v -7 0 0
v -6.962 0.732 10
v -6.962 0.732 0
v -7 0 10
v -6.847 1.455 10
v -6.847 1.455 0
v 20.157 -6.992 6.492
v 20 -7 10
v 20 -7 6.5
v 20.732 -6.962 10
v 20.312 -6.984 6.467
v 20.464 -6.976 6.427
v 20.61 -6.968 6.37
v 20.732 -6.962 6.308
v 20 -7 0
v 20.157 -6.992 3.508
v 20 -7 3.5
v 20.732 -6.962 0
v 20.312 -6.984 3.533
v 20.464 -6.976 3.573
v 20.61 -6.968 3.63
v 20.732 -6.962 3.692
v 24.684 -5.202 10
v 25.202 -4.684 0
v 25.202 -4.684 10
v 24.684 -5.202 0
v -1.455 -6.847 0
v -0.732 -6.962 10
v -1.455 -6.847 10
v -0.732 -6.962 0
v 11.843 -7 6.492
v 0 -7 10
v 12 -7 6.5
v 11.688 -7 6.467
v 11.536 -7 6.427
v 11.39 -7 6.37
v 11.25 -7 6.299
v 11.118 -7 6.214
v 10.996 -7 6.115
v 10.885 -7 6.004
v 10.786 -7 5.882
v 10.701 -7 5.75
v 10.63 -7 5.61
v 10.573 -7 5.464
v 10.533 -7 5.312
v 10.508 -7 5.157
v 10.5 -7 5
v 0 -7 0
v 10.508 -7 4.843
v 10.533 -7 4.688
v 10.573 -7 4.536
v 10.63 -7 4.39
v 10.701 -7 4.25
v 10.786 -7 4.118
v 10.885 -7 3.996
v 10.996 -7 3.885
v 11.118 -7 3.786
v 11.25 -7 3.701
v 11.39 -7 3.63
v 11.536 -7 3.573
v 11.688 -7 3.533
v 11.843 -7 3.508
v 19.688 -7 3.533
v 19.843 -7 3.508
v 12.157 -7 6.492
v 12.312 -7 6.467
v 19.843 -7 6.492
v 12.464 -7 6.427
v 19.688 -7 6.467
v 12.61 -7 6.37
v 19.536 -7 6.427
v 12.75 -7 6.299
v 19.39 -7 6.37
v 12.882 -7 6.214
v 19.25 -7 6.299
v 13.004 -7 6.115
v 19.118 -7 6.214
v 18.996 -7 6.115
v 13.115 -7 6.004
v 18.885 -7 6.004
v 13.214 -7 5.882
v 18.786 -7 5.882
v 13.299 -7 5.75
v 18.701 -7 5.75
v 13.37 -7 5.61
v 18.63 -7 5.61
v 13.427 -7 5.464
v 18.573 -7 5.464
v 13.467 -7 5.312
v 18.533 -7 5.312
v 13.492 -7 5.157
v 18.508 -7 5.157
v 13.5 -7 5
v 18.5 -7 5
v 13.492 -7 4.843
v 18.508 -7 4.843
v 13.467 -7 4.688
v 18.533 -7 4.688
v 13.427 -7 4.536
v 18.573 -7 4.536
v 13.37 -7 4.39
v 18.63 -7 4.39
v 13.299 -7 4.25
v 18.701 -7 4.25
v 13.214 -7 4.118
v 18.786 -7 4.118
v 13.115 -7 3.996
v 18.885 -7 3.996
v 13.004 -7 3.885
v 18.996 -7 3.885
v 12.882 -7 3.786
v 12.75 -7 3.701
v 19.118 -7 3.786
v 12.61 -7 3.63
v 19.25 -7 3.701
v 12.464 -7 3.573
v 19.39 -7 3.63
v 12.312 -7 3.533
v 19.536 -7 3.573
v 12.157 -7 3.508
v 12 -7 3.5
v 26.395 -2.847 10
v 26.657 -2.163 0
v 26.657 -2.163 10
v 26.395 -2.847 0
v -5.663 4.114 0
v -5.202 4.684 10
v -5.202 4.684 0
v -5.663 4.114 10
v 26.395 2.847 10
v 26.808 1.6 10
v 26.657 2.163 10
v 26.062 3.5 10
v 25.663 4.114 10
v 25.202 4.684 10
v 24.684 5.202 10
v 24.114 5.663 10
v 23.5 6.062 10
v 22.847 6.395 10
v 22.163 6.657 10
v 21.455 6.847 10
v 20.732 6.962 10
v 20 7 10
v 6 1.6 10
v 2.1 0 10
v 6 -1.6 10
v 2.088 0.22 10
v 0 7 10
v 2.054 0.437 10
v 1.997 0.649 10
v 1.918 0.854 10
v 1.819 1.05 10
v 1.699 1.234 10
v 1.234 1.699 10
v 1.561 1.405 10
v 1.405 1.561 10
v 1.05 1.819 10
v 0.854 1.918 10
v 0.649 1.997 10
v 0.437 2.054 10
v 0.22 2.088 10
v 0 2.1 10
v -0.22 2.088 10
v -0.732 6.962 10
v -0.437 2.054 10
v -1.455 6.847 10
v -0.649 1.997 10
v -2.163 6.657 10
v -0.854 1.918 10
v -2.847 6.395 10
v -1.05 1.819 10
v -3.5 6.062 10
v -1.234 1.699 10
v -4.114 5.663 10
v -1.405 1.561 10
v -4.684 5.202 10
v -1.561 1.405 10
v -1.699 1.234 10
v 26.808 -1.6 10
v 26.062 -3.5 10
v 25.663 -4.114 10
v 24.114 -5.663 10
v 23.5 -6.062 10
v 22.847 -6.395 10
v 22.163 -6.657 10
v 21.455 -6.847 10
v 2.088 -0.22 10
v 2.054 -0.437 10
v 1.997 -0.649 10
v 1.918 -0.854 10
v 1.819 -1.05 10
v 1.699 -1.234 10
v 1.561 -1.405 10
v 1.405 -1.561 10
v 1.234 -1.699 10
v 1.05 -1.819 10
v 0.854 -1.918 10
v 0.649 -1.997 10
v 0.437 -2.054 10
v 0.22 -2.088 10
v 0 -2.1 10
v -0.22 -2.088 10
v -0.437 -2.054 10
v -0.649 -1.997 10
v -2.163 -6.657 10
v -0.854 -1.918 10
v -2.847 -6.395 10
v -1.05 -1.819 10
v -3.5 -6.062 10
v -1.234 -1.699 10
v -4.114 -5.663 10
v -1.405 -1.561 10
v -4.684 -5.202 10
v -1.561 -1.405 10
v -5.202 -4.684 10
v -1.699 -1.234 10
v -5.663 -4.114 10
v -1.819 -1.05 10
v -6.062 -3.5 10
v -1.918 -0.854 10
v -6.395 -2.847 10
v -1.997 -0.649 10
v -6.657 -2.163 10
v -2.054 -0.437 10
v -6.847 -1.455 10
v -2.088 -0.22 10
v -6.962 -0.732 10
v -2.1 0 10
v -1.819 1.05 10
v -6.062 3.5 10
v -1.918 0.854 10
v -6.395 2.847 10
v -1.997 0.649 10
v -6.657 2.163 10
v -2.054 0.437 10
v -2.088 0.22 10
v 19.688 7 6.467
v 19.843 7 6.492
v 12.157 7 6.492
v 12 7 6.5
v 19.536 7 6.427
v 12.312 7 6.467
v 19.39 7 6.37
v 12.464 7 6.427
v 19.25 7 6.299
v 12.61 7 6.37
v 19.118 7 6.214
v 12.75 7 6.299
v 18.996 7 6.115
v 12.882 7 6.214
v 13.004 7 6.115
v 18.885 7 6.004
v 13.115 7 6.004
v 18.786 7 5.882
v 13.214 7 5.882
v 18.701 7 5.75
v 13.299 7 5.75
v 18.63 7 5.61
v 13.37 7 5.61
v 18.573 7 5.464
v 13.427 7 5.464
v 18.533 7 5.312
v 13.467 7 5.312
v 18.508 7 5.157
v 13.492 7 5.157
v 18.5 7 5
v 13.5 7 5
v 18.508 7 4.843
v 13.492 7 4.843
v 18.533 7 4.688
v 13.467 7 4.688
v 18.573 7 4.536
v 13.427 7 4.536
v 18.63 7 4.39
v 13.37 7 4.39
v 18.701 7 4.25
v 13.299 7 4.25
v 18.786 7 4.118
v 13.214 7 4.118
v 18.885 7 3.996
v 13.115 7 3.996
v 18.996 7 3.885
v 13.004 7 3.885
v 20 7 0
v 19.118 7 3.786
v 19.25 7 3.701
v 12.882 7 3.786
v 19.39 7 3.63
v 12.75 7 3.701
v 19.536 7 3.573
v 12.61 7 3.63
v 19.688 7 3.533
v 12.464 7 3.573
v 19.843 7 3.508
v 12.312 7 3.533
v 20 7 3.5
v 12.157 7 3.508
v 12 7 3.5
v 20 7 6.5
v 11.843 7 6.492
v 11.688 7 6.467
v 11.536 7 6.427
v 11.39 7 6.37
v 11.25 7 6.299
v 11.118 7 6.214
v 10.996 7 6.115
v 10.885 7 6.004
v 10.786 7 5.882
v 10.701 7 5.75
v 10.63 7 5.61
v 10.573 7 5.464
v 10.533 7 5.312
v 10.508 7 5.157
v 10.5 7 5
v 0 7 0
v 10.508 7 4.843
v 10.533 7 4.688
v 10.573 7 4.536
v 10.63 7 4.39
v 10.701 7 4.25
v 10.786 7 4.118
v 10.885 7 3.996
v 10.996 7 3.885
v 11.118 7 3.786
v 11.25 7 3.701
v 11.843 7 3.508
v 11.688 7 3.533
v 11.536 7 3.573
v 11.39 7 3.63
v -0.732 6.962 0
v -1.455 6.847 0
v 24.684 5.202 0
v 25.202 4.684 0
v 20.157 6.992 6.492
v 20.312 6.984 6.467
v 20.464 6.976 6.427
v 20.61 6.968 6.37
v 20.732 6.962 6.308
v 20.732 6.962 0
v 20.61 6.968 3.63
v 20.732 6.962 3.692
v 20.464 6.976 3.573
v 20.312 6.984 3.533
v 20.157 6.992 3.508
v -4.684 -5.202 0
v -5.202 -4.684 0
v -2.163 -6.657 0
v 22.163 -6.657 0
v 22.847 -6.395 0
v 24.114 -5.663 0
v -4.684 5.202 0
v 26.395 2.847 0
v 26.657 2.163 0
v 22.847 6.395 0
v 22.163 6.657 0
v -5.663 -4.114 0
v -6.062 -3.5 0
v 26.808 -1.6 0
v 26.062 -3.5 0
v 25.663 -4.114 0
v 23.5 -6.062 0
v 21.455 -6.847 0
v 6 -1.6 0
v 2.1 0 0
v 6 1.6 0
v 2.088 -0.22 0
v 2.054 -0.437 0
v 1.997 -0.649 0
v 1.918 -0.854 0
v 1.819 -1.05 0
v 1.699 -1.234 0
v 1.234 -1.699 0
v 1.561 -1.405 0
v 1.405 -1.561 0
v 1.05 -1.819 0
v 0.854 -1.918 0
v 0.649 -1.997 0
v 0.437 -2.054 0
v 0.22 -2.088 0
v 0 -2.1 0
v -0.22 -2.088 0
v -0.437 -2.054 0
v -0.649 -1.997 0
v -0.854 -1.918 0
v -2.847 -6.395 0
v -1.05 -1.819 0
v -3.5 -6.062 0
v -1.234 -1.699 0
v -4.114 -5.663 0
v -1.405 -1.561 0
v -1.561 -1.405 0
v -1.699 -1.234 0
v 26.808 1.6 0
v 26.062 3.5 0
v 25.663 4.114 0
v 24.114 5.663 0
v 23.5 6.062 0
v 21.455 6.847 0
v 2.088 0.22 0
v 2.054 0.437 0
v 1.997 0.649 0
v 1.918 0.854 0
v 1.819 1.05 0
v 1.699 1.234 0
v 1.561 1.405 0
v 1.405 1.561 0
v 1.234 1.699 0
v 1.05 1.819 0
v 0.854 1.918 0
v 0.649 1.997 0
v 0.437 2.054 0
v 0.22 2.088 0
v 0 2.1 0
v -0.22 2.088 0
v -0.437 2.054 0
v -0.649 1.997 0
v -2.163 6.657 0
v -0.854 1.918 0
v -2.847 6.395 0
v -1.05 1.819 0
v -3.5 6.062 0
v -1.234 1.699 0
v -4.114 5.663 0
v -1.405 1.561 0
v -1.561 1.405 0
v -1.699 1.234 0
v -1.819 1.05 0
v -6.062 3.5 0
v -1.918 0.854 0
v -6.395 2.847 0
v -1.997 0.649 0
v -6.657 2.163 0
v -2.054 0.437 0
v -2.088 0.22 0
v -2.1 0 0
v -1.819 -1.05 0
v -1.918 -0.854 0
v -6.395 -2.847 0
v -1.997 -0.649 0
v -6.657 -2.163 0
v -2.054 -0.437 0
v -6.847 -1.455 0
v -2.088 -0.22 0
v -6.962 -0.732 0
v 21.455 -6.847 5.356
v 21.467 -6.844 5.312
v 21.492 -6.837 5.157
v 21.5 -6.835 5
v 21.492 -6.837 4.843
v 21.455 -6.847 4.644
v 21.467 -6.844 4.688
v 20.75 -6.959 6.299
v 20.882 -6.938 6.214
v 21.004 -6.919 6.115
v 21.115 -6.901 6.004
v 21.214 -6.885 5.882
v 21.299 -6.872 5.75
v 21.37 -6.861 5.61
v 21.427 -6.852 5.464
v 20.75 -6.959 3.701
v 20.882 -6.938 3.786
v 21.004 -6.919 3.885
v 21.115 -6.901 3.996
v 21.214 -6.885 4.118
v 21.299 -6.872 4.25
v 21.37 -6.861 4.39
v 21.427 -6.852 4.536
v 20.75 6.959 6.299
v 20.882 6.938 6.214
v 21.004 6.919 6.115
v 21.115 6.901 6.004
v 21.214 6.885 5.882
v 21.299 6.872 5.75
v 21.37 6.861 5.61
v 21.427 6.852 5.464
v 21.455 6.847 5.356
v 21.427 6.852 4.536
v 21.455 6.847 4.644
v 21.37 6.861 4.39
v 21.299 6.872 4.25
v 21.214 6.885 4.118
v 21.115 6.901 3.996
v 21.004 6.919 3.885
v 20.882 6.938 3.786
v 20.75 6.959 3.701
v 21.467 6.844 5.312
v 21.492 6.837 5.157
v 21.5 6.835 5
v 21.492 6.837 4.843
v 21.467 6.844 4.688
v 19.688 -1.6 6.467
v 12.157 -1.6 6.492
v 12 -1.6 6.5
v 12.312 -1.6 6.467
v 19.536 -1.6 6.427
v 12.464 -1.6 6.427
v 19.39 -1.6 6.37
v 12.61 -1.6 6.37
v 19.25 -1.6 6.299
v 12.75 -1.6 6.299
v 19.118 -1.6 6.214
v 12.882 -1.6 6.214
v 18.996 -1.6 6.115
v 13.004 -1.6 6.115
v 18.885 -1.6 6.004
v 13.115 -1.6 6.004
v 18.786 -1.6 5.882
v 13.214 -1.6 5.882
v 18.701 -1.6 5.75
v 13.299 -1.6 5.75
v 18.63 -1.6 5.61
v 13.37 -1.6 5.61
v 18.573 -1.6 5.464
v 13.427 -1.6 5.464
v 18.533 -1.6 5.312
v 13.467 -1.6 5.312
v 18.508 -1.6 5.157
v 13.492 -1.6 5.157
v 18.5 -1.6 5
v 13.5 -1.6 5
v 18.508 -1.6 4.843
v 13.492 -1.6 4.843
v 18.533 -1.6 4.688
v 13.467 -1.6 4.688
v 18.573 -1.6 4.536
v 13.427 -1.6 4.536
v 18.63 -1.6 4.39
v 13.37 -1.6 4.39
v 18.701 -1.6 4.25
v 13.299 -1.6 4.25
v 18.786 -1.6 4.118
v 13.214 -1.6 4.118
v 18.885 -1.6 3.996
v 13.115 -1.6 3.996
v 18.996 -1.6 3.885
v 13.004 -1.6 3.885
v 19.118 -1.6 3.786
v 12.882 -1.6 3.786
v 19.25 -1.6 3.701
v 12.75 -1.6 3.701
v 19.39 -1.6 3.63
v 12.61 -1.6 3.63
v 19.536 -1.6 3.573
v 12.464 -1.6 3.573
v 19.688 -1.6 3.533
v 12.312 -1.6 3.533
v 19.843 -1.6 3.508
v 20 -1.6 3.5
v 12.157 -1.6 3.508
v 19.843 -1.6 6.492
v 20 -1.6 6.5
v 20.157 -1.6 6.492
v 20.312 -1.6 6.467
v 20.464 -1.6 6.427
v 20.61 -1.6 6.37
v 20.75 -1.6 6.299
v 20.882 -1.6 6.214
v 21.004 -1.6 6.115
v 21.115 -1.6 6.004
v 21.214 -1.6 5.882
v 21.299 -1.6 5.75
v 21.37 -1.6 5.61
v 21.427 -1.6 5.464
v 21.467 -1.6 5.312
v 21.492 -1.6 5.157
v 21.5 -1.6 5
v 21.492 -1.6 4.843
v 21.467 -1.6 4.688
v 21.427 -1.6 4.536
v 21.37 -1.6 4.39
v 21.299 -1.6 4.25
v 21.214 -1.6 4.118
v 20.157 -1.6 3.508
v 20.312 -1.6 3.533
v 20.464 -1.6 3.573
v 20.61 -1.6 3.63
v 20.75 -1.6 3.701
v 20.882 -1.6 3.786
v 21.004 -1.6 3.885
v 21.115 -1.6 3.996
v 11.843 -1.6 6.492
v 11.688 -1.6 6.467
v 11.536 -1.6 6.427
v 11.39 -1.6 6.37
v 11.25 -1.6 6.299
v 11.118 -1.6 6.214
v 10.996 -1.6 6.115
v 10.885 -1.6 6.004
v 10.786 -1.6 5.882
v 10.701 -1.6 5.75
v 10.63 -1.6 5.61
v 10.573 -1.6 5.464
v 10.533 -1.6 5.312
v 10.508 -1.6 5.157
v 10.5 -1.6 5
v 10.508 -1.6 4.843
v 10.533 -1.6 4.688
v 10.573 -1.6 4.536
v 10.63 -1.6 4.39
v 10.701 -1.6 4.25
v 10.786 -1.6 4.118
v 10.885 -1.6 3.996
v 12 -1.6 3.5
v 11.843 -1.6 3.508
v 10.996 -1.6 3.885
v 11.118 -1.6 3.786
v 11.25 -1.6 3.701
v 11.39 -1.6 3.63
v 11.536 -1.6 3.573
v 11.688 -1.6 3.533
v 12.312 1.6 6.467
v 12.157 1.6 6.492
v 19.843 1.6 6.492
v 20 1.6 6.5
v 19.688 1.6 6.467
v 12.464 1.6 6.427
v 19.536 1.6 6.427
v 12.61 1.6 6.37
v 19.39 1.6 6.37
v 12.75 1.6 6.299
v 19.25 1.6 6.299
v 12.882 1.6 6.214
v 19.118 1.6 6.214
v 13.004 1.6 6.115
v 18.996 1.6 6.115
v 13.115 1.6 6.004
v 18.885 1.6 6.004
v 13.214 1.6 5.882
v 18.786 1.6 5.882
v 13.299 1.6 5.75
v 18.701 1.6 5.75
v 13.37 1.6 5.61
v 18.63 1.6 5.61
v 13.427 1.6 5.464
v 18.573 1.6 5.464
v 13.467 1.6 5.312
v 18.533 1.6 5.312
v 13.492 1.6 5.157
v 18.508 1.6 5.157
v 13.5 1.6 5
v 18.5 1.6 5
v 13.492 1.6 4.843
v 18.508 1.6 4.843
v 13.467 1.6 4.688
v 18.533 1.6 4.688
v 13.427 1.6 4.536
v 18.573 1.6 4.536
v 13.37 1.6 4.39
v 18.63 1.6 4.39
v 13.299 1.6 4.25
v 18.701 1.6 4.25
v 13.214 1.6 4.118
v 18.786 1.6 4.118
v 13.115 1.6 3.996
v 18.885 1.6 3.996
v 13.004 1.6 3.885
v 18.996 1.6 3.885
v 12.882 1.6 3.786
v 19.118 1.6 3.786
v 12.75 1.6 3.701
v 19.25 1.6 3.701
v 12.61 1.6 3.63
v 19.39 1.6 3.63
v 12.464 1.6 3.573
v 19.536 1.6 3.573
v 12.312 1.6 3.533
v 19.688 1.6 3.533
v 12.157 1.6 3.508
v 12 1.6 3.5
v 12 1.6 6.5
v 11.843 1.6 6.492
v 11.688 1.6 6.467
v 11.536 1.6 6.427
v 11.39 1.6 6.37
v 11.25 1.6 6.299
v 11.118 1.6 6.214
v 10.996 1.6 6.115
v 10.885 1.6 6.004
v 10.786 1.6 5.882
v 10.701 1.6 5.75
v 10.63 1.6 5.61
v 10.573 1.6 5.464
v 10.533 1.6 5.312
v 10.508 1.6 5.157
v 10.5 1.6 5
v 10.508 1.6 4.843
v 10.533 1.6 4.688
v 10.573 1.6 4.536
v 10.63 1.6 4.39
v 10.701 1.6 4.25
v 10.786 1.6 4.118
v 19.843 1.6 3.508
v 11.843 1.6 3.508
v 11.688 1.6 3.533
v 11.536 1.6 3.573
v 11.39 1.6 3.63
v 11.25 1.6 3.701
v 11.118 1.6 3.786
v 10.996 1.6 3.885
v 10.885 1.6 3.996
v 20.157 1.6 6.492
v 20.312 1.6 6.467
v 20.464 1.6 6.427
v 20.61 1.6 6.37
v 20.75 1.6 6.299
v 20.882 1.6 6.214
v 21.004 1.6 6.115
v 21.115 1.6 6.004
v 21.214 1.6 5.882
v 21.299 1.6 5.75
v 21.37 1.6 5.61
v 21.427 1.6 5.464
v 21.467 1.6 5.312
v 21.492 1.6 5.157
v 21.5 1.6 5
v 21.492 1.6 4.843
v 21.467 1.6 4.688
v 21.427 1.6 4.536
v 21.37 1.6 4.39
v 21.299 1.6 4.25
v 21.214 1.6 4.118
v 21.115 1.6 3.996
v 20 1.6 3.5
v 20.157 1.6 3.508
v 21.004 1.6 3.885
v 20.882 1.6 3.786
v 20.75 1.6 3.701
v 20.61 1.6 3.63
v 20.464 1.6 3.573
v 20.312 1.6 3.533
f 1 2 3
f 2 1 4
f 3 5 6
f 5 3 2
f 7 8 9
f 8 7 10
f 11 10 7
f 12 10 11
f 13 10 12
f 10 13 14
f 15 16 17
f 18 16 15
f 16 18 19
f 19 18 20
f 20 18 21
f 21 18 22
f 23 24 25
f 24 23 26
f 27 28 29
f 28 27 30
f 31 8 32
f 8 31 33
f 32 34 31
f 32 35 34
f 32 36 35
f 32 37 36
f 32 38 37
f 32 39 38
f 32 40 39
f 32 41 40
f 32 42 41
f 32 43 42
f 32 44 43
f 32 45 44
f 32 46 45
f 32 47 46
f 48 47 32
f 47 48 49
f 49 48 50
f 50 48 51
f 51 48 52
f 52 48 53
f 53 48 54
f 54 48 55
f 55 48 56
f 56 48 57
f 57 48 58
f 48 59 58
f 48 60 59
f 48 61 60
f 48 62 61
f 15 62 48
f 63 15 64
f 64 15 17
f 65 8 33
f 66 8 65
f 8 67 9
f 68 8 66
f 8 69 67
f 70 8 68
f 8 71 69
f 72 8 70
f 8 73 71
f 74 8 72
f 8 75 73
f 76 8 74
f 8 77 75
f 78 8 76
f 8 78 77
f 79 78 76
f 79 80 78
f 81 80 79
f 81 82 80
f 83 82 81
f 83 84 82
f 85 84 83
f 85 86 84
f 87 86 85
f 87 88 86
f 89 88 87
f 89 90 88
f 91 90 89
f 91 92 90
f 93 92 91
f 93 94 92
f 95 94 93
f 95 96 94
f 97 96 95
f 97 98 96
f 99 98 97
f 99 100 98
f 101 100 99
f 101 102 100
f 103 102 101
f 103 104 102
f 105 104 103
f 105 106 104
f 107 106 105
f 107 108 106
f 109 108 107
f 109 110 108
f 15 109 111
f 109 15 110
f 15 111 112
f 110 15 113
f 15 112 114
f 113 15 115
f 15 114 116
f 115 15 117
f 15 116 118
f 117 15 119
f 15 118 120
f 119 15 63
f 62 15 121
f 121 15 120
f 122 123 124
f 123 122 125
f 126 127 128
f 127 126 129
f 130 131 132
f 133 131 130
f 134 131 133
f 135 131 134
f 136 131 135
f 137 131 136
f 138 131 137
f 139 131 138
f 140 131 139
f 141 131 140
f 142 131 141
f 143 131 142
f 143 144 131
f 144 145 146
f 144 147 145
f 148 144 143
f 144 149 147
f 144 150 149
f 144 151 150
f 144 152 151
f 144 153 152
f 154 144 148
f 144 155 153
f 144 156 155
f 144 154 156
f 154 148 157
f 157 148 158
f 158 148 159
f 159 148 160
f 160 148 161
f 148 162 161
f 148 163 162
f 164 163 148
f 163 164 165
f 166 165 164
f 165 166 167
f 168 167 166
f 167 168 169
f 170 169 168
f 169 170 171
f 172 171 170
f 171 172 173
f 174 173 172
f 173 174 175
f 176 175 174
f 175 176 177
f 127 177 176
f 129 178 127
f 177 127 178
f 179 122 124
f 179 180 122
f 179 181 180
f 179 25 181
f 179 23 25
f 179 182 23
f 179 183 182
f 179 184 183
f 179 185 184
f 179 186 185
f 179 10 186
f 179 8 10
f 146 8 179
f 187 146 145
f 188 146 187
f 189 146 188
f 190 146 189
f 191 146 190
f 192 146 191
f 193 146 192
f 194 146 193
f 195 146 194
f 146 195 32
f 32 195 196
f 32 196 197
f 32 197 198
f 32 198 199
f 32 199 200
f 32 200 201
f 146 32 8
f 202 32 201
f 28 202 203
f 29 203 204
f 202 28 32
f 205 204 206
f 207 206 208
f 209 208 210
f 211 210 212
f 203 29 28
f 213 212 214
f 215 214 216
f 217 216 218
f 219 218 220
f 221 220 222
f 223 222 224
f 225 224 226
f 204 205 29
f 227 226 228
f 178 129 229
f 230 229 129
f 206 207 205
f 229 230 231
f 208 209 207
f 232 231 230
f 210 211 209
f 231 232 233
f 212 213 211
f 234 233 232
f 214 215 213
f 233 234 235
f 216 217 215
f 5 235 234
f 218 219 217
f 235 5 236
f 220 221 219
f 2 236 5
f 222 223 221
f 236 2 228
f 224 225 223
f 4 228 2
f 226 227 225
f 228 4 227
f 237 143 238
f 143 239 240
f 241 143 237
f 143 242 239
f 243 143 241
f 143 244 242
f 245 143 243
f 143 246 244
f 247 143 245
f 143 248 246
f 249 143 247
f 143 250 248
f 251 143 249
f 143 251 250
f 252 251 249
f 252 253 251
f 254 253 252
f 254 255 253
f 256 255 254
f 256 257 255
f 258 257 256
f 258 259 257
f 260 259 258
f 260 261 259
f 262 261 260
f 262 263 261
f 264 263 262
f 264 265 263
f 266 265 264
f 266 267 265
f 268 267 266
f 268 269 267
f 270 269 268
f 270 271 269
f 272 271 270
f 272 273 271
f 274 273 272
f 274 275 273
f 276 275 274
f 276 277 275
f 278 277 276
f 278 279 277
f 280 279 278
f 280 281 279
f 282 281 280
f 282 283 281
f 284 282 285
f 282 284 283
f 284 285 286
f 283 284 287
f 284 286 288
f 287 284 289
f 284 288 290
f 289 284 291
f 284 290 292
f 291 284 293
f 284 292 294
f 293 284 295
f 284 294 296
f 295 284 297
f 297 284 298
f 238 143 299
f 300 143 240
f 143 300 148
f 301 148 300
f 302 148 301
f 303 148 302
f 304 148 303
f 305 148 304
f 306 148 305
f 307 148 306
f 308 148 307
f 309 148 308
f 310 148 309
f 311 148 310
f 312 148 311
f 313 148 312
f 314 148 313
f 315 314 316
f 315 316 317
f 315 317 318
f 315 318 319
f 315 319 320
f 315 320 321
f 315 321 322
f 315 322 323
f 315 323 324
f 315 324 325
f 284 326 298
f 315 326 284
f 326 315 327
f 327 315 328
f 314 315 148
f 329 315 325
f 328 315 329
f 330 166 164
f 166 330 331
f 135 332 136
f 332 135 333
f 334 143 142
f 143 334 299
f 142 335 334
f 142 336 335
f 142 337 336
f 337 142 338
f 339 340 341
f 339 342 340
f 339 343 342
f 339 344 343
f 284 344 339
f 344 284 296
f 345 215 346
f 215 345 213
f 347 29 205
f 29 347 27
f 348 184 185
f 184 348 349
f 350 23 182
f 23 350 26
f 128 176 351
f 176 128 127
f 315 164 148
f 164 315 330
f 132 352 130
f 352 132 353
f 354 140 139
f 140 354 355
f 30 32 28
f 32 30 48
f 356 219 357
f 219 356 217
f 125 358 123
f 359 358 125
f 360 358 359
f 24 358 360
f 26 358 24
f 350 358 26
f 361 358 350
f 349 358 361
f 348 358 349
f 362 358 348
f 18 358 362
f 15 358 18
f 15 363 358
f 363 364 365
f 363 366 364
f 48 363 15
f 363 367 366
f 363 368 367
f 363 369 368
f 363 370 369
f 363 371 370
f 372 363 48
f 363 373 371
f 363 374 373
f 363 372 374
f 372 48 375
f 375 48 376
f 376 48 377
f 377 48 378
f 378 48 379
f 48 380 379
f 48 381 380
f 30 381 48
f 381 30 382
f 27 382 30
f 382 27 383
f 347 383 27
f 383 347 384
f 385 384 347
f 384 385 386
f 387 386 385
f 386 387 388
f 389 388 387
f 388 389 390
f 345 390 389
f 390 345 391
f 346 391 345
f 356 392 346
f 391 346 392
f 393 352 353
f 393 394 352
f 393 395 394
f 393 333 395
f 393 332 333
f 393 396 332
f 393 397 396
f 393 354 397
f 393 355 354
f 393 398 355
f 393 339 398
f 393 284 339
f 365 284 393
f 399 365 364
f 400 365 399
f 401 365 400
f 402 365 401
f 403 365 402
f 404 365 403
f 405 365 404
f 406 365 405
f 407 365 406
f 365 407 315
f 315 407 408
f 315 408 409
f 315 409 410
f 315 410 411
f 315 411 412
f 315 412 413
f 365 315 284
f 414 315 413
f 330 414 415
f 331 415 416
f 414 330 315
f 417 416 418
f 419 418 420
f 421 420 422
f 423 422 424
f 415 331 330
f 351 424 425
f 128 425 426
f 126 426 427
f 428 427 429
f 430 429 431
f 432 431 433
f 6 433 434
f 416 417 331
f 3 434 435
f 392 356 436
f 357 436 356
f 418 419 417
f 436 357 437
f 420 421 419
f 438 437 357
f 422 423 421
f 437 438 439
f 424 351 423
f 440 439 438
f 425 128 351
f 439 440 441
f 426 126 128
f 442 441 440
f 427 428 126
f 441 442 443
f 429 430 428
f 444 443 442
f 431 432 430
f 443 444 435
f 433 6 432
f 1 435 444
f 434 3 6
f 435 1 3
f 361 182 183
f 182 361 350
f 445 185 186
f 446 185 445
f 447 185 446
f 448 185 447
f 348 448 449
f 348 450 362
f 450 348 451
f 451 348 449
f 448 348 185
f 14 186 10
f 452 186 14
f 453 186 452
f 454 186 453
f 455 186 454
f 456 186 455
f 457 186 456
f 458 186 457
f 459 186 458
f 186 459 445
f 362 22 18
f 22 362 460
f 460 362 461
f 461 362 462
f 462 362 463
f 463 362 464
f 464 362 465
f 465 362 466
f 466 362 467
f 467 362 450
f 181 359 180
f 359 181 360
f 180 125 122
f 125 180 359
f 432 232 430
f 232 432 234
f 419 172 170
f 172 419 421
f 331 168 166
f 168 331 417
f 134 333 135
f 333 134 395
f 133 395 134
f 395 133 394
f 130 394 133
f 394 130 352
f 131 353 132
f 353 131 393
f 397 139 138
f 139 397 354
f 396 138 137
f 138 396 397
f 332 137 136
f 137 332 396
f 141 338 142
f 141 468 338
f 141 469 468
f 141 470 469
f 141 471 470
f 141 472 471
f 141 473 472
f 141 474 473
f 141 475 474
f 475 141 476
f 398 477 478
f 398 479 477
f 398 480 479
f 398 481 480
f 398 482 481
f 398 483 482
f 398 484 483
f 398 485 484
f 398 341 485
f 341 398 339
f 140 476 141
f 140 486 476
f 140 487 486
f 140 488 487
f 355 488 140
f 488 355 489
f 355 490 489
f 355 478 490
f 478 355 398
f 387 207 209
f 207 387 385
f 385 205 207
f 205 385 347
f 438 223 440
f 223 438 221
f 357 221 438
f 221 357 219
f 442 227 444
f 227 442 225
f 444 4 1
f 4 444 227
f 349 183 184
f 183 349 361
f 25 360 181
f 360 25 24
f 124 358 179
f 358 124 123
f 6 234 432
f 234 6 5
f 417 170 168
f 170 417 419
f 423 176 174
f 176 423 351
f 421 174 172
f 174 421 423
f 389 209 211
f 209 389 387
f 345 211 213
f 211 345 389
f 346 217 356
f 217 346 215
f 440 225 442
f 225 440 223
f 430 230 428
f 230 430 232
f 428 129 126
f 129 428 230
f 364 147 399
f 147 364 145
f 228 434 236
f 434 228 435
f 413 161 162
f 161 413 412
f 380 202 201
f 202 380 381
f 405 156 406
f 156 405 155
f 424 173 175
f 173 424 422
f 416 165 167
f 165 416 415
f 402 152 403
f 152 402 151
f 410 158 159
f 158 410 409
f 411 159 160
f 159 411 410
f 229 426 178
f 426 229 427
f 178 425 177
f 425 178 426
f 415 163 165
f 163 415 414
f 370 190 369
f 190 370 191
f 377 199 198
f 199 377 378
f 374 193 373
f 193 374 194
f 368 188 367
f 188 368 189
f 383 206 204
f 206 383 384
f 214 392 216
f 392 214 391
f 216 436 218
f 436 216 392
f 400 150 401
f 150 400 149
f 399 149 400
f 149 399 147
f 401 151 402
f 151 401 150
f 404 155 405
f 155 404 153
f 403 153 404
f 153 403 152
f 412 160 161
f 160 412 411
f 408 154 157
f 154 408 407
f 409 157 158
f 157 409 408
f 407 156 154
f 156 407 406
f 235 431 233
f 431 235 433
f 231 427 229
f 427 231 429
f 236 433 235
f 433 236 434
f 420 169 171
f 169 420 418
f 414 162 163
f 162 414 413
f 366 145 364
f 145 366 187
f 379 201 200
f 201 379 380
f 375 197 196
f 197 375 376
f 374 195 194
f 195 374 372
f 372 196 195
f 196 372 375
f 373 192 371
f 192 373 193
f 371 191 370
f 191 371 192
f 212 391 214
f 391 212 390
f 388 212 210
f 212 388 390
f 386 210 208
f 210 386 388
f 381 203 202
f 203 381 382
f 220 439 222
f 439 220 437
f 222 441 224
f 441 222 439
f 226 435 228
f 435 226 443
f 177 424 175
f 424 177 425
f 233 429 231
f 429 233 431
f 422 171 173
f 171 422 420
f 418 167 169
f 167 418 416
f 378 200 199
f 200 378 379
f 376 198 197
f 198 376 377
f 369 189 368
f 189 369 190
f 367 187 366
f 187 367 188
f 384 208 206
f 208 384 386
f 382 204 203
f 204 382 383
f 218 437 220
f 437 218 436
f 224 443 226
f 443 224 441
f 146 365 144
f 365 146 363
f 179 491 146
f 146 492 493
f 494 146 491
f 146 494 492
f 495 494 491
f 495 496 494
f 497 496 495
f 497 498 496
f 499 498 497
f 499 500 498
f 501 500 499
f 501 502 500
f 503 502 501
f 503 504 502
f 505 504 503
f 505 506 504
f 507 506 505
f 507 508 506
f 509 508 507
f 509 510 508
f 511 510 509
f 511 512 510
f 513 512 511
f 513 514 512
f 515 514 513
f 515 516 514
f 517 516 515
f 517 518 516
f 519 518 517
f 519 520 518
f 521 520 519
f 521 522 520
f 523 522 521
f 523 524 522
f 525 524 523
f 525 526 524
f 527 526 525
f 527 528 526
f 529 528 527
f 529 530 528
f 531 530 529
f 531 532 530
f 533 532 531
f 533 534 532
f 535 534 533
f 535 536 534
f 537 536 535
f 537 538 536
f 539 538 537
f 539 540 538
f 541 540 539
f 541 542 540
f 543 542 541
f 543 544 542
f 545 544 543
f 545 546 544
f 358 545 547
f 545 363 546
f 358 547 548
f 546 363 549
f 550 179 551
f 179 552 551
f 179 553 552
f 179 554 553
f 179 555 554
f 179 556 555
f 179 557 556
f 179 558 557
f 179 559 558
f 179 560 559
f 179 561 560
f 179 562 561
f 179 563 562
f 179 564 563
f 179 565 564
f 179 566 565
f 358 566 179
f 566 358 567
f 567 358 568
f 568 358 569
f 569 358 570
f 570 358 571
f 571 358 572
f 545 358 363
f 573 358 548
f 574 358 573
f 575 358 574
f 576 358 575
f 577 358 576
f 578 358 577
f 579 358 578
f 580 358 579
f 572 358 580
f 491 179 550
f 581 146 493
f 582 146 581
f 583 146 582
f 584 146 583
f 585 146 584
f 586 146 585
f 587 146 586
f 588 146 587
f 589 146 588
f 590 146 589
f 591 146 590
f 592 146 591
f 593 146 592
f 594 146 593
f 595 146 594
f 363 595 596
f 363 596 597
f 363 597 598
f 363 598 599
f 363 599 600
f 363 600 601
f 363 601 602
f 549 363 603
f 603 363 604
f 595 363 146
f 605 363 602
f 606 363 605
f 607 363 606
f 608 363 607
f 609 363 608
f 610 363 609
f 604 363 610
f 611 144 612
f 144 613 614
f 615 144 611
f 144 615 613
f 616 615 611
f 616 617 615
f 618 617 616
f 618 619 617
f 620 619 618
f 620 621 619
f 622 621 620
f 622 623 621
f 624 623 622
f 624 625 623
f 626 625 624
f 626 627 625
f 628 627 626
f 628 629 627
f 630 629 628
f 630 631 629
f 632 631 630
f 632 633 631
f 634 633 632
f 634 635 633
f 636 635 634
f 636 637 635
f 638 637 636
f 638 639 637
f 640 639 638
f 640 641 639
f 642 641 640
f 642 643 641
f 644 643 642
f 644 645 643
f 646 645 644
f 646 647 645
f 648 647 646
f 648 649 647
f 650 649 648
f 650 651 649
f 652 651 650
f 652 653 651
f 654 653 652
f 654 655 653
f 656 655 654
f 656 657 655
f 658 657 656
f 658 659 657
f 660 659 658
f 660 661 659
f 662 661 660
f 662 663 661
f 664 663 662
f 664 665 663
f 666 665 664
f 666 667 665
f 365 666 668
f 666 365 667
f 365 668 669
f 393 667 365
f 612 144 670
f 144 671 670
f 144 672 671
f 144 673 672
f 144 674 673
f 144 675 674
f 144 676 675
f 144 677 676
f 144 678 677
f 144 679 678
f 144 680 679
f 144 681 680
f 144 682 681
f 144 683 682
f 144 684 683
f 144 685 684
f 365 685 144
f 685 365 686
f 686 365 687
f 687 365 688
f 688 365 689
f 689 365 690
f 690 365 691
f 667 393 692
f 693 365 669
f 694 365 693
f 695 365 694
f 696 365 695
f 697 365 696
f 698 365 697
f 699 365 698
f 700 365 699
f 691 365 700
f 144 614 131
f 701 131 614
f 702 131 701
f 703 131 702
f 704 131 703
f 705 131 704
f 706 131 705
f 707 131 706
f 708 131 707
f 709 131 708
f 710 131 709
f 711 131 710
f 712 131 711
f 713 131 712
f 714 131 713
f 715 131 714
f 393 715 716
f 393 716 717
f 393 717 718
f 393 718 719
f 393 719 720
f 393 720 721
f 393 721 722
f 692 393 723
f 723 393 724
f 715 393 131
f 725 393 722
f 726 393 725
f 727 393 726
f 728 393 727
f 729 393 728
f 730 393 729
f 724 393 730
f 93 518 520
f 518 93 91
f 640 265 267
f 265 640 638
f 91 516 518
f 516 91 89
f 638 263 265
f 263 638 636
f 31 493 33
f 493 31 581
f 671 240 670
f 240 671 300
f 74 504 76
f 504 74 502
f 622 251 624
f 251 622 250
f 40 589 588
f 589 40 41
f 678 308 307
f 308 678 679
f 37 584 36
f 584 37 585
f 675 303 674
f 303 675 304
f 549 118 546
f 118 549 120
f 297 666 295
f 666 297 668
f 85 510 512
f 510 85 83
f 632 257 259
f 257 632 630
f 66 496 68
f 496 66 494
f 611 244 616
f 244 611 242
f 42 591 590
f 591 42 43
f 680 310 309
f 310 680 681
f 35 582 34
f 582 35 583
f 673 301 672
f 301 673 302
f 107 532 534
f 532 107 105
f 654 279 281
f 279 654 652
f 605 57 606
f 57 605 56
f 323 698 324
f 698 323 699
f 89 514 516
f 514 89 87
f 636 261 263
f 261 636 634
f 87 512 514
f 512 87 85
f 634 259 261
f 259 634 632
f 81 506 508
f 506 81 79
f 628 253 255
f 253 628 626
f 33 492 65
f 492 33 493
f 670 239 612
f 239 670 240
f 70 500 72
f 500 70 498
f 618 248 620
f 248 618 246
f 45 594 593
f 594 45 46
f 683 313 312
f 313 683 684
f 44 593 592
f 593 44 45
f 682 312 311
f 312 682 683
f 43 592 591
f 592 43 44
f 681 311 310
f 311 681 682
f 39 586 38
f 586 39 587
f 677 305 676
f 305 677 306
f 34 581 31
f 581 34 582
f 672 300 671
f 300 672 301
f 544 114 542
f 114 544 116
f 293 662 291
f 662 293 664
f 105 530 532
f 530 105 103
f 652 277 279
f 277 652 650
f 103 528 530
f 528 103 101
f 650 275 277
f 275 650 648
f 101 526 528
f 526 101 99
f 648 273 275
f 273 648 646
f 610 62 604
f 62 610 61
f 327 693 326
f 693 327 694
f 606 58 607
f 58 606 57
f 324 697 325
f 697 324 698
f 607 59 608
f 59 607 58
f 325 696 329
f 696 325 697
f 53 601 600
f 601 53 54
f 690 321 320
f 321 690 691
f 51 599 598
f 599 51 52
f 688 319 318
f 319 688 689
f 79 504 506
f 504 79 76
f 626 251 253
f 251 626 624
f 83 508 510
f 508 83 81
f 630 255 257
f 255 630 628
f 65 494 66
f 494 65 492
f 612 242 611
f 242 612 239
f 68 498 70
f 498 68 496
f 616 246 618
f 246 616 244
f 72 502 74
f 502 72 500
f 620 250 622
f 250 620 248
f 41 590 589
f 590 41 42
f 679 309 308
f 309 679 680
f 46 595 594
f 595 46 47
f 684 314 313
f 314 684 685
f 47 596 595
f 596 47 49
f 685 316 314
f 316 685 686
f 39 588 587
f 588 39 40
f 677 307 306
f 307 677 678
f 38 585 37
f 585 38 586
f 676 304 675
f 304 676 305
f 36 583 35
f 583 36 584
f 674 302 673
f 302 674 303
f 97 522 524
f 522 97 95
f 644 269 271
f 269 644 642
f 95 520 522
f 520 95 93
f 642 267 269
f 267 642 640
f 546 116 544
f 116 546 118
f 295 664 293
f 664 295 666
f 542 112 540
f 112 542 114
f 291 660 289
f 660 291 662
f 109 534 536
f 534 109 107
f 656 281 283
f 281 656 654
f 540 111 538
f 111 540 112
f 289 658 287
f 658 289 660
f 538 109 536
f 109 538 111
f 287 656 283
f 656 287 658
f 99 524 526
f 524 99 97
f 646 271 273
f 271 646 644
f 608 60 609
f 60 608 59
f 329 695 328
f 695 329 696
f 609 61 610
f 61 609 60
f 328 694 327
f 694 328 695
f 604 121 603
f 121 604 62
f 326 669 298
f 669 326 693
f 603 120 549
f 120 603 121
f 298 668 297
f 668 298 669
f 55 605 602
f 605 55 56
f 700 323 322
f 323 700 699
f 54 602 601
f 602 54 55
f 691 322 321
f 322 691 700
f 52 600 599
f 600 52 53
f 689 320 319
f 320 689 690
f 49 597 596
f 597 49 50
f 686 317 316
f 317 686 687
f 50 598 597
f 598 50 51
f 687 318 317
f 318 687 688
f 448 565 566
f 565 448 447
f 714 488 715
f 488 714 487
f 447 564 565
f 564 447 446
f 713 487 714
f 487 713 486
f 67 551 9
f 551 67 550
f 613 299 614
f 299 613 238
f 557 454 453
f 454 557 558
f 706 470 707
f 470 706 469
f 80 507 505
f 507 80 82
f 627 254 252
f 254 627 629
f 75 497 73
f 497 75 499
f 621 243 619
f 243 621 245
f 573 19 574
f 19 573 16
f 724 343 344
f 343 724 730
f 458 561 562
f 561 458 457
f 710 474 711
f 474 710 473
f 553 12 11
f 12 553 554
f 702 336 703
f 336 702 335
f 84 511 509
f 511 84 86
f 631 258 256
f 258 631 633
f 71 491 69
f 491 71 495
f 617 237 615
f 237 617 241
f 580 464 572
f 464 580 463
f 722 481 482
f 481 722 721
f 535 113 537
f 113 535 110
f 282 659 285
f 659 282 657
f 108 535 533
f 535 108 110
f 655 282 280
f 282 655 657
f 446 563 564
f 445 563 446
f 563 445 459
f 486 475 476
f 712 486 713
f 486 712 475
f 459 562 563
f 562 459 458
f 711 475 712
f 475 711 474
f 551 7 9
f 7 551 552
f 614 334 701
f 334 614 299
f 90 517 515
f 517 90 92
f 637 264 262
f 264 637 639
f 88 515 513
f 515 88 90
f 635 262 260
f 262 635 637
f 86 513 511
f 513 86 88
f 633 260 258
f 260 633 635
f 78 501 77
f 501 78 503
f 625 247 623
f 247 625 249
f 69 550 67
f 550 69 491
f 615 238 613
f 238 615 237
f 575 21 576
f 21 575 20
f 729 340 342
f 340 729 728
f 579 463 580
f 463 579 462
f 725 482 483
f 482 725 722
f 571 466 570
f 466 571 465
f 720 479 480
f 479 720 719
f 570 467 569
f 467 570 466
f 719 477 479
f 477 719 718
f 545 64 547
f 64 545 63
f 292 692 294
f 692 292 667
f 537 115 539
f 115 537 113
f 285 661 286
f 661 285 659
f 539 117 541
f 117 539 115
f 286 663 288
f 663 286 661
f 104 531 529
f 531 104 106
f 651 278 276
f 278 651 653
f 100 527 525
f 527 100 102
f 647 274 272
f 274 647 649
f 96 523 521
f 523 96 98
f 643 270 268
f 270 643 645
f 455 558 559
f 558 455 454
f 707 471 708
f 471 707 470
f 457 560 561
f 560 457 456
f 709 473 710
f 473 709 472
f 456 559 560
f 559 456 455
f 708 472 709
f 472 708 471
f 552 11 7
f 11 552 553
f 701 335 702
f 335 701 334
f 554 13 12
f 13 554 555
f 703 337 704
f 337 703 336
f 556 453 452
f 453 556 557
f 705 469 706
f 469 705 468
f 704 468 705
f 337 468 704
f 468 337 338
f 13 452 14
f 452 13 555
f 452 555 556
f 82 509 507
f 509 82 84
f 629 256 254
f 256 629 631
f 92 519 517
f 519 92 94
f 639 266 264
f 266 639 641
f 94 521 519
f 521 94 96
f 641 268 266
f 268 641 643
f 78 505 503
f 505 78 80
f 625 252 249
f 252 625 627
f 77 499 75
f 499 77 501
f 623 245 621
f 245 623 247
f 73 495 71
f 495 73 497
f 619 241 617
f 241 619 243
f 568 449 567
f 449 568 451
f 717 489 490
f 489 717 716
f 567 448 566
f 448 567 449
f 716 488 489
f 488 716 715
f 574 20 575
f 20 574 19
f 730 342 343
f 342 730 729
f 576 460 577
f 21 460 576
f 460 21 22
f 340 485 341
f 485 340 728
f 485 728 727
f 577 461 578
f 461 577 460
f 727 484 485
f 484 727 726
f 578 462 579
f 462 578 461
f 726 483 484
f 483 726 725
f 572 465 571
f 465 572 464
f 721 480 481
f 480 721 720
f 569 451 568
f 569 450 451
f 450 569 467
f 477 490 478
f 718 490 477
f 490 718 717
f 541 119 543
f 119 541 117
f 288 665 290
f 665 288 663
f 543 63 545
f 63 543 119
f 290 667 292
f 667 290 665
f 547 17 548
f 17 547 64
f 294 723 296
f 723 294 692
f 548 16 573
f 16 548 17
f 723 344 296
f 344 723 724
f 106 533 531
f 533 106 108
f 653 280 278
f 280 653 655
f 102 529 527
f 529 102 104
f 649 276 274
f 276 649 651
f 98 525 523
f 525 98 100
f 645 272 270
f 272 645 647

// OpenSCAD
$fn=60;
difference(){
hull(){
cylinder(d=14,h=10);
translate([20,0,0])cylinder(d=14,h=10);
}
cylinder(d=4.2,h=11);
translate([6,-1.6,0])cube([25,3.2,11]);
translate([12,10,5])rotate([90,0,0])
cylinder(d=3,h=20);
translate([20,10,5])rotate([90,0,0])
cylinder(d=3,h=20);
}
